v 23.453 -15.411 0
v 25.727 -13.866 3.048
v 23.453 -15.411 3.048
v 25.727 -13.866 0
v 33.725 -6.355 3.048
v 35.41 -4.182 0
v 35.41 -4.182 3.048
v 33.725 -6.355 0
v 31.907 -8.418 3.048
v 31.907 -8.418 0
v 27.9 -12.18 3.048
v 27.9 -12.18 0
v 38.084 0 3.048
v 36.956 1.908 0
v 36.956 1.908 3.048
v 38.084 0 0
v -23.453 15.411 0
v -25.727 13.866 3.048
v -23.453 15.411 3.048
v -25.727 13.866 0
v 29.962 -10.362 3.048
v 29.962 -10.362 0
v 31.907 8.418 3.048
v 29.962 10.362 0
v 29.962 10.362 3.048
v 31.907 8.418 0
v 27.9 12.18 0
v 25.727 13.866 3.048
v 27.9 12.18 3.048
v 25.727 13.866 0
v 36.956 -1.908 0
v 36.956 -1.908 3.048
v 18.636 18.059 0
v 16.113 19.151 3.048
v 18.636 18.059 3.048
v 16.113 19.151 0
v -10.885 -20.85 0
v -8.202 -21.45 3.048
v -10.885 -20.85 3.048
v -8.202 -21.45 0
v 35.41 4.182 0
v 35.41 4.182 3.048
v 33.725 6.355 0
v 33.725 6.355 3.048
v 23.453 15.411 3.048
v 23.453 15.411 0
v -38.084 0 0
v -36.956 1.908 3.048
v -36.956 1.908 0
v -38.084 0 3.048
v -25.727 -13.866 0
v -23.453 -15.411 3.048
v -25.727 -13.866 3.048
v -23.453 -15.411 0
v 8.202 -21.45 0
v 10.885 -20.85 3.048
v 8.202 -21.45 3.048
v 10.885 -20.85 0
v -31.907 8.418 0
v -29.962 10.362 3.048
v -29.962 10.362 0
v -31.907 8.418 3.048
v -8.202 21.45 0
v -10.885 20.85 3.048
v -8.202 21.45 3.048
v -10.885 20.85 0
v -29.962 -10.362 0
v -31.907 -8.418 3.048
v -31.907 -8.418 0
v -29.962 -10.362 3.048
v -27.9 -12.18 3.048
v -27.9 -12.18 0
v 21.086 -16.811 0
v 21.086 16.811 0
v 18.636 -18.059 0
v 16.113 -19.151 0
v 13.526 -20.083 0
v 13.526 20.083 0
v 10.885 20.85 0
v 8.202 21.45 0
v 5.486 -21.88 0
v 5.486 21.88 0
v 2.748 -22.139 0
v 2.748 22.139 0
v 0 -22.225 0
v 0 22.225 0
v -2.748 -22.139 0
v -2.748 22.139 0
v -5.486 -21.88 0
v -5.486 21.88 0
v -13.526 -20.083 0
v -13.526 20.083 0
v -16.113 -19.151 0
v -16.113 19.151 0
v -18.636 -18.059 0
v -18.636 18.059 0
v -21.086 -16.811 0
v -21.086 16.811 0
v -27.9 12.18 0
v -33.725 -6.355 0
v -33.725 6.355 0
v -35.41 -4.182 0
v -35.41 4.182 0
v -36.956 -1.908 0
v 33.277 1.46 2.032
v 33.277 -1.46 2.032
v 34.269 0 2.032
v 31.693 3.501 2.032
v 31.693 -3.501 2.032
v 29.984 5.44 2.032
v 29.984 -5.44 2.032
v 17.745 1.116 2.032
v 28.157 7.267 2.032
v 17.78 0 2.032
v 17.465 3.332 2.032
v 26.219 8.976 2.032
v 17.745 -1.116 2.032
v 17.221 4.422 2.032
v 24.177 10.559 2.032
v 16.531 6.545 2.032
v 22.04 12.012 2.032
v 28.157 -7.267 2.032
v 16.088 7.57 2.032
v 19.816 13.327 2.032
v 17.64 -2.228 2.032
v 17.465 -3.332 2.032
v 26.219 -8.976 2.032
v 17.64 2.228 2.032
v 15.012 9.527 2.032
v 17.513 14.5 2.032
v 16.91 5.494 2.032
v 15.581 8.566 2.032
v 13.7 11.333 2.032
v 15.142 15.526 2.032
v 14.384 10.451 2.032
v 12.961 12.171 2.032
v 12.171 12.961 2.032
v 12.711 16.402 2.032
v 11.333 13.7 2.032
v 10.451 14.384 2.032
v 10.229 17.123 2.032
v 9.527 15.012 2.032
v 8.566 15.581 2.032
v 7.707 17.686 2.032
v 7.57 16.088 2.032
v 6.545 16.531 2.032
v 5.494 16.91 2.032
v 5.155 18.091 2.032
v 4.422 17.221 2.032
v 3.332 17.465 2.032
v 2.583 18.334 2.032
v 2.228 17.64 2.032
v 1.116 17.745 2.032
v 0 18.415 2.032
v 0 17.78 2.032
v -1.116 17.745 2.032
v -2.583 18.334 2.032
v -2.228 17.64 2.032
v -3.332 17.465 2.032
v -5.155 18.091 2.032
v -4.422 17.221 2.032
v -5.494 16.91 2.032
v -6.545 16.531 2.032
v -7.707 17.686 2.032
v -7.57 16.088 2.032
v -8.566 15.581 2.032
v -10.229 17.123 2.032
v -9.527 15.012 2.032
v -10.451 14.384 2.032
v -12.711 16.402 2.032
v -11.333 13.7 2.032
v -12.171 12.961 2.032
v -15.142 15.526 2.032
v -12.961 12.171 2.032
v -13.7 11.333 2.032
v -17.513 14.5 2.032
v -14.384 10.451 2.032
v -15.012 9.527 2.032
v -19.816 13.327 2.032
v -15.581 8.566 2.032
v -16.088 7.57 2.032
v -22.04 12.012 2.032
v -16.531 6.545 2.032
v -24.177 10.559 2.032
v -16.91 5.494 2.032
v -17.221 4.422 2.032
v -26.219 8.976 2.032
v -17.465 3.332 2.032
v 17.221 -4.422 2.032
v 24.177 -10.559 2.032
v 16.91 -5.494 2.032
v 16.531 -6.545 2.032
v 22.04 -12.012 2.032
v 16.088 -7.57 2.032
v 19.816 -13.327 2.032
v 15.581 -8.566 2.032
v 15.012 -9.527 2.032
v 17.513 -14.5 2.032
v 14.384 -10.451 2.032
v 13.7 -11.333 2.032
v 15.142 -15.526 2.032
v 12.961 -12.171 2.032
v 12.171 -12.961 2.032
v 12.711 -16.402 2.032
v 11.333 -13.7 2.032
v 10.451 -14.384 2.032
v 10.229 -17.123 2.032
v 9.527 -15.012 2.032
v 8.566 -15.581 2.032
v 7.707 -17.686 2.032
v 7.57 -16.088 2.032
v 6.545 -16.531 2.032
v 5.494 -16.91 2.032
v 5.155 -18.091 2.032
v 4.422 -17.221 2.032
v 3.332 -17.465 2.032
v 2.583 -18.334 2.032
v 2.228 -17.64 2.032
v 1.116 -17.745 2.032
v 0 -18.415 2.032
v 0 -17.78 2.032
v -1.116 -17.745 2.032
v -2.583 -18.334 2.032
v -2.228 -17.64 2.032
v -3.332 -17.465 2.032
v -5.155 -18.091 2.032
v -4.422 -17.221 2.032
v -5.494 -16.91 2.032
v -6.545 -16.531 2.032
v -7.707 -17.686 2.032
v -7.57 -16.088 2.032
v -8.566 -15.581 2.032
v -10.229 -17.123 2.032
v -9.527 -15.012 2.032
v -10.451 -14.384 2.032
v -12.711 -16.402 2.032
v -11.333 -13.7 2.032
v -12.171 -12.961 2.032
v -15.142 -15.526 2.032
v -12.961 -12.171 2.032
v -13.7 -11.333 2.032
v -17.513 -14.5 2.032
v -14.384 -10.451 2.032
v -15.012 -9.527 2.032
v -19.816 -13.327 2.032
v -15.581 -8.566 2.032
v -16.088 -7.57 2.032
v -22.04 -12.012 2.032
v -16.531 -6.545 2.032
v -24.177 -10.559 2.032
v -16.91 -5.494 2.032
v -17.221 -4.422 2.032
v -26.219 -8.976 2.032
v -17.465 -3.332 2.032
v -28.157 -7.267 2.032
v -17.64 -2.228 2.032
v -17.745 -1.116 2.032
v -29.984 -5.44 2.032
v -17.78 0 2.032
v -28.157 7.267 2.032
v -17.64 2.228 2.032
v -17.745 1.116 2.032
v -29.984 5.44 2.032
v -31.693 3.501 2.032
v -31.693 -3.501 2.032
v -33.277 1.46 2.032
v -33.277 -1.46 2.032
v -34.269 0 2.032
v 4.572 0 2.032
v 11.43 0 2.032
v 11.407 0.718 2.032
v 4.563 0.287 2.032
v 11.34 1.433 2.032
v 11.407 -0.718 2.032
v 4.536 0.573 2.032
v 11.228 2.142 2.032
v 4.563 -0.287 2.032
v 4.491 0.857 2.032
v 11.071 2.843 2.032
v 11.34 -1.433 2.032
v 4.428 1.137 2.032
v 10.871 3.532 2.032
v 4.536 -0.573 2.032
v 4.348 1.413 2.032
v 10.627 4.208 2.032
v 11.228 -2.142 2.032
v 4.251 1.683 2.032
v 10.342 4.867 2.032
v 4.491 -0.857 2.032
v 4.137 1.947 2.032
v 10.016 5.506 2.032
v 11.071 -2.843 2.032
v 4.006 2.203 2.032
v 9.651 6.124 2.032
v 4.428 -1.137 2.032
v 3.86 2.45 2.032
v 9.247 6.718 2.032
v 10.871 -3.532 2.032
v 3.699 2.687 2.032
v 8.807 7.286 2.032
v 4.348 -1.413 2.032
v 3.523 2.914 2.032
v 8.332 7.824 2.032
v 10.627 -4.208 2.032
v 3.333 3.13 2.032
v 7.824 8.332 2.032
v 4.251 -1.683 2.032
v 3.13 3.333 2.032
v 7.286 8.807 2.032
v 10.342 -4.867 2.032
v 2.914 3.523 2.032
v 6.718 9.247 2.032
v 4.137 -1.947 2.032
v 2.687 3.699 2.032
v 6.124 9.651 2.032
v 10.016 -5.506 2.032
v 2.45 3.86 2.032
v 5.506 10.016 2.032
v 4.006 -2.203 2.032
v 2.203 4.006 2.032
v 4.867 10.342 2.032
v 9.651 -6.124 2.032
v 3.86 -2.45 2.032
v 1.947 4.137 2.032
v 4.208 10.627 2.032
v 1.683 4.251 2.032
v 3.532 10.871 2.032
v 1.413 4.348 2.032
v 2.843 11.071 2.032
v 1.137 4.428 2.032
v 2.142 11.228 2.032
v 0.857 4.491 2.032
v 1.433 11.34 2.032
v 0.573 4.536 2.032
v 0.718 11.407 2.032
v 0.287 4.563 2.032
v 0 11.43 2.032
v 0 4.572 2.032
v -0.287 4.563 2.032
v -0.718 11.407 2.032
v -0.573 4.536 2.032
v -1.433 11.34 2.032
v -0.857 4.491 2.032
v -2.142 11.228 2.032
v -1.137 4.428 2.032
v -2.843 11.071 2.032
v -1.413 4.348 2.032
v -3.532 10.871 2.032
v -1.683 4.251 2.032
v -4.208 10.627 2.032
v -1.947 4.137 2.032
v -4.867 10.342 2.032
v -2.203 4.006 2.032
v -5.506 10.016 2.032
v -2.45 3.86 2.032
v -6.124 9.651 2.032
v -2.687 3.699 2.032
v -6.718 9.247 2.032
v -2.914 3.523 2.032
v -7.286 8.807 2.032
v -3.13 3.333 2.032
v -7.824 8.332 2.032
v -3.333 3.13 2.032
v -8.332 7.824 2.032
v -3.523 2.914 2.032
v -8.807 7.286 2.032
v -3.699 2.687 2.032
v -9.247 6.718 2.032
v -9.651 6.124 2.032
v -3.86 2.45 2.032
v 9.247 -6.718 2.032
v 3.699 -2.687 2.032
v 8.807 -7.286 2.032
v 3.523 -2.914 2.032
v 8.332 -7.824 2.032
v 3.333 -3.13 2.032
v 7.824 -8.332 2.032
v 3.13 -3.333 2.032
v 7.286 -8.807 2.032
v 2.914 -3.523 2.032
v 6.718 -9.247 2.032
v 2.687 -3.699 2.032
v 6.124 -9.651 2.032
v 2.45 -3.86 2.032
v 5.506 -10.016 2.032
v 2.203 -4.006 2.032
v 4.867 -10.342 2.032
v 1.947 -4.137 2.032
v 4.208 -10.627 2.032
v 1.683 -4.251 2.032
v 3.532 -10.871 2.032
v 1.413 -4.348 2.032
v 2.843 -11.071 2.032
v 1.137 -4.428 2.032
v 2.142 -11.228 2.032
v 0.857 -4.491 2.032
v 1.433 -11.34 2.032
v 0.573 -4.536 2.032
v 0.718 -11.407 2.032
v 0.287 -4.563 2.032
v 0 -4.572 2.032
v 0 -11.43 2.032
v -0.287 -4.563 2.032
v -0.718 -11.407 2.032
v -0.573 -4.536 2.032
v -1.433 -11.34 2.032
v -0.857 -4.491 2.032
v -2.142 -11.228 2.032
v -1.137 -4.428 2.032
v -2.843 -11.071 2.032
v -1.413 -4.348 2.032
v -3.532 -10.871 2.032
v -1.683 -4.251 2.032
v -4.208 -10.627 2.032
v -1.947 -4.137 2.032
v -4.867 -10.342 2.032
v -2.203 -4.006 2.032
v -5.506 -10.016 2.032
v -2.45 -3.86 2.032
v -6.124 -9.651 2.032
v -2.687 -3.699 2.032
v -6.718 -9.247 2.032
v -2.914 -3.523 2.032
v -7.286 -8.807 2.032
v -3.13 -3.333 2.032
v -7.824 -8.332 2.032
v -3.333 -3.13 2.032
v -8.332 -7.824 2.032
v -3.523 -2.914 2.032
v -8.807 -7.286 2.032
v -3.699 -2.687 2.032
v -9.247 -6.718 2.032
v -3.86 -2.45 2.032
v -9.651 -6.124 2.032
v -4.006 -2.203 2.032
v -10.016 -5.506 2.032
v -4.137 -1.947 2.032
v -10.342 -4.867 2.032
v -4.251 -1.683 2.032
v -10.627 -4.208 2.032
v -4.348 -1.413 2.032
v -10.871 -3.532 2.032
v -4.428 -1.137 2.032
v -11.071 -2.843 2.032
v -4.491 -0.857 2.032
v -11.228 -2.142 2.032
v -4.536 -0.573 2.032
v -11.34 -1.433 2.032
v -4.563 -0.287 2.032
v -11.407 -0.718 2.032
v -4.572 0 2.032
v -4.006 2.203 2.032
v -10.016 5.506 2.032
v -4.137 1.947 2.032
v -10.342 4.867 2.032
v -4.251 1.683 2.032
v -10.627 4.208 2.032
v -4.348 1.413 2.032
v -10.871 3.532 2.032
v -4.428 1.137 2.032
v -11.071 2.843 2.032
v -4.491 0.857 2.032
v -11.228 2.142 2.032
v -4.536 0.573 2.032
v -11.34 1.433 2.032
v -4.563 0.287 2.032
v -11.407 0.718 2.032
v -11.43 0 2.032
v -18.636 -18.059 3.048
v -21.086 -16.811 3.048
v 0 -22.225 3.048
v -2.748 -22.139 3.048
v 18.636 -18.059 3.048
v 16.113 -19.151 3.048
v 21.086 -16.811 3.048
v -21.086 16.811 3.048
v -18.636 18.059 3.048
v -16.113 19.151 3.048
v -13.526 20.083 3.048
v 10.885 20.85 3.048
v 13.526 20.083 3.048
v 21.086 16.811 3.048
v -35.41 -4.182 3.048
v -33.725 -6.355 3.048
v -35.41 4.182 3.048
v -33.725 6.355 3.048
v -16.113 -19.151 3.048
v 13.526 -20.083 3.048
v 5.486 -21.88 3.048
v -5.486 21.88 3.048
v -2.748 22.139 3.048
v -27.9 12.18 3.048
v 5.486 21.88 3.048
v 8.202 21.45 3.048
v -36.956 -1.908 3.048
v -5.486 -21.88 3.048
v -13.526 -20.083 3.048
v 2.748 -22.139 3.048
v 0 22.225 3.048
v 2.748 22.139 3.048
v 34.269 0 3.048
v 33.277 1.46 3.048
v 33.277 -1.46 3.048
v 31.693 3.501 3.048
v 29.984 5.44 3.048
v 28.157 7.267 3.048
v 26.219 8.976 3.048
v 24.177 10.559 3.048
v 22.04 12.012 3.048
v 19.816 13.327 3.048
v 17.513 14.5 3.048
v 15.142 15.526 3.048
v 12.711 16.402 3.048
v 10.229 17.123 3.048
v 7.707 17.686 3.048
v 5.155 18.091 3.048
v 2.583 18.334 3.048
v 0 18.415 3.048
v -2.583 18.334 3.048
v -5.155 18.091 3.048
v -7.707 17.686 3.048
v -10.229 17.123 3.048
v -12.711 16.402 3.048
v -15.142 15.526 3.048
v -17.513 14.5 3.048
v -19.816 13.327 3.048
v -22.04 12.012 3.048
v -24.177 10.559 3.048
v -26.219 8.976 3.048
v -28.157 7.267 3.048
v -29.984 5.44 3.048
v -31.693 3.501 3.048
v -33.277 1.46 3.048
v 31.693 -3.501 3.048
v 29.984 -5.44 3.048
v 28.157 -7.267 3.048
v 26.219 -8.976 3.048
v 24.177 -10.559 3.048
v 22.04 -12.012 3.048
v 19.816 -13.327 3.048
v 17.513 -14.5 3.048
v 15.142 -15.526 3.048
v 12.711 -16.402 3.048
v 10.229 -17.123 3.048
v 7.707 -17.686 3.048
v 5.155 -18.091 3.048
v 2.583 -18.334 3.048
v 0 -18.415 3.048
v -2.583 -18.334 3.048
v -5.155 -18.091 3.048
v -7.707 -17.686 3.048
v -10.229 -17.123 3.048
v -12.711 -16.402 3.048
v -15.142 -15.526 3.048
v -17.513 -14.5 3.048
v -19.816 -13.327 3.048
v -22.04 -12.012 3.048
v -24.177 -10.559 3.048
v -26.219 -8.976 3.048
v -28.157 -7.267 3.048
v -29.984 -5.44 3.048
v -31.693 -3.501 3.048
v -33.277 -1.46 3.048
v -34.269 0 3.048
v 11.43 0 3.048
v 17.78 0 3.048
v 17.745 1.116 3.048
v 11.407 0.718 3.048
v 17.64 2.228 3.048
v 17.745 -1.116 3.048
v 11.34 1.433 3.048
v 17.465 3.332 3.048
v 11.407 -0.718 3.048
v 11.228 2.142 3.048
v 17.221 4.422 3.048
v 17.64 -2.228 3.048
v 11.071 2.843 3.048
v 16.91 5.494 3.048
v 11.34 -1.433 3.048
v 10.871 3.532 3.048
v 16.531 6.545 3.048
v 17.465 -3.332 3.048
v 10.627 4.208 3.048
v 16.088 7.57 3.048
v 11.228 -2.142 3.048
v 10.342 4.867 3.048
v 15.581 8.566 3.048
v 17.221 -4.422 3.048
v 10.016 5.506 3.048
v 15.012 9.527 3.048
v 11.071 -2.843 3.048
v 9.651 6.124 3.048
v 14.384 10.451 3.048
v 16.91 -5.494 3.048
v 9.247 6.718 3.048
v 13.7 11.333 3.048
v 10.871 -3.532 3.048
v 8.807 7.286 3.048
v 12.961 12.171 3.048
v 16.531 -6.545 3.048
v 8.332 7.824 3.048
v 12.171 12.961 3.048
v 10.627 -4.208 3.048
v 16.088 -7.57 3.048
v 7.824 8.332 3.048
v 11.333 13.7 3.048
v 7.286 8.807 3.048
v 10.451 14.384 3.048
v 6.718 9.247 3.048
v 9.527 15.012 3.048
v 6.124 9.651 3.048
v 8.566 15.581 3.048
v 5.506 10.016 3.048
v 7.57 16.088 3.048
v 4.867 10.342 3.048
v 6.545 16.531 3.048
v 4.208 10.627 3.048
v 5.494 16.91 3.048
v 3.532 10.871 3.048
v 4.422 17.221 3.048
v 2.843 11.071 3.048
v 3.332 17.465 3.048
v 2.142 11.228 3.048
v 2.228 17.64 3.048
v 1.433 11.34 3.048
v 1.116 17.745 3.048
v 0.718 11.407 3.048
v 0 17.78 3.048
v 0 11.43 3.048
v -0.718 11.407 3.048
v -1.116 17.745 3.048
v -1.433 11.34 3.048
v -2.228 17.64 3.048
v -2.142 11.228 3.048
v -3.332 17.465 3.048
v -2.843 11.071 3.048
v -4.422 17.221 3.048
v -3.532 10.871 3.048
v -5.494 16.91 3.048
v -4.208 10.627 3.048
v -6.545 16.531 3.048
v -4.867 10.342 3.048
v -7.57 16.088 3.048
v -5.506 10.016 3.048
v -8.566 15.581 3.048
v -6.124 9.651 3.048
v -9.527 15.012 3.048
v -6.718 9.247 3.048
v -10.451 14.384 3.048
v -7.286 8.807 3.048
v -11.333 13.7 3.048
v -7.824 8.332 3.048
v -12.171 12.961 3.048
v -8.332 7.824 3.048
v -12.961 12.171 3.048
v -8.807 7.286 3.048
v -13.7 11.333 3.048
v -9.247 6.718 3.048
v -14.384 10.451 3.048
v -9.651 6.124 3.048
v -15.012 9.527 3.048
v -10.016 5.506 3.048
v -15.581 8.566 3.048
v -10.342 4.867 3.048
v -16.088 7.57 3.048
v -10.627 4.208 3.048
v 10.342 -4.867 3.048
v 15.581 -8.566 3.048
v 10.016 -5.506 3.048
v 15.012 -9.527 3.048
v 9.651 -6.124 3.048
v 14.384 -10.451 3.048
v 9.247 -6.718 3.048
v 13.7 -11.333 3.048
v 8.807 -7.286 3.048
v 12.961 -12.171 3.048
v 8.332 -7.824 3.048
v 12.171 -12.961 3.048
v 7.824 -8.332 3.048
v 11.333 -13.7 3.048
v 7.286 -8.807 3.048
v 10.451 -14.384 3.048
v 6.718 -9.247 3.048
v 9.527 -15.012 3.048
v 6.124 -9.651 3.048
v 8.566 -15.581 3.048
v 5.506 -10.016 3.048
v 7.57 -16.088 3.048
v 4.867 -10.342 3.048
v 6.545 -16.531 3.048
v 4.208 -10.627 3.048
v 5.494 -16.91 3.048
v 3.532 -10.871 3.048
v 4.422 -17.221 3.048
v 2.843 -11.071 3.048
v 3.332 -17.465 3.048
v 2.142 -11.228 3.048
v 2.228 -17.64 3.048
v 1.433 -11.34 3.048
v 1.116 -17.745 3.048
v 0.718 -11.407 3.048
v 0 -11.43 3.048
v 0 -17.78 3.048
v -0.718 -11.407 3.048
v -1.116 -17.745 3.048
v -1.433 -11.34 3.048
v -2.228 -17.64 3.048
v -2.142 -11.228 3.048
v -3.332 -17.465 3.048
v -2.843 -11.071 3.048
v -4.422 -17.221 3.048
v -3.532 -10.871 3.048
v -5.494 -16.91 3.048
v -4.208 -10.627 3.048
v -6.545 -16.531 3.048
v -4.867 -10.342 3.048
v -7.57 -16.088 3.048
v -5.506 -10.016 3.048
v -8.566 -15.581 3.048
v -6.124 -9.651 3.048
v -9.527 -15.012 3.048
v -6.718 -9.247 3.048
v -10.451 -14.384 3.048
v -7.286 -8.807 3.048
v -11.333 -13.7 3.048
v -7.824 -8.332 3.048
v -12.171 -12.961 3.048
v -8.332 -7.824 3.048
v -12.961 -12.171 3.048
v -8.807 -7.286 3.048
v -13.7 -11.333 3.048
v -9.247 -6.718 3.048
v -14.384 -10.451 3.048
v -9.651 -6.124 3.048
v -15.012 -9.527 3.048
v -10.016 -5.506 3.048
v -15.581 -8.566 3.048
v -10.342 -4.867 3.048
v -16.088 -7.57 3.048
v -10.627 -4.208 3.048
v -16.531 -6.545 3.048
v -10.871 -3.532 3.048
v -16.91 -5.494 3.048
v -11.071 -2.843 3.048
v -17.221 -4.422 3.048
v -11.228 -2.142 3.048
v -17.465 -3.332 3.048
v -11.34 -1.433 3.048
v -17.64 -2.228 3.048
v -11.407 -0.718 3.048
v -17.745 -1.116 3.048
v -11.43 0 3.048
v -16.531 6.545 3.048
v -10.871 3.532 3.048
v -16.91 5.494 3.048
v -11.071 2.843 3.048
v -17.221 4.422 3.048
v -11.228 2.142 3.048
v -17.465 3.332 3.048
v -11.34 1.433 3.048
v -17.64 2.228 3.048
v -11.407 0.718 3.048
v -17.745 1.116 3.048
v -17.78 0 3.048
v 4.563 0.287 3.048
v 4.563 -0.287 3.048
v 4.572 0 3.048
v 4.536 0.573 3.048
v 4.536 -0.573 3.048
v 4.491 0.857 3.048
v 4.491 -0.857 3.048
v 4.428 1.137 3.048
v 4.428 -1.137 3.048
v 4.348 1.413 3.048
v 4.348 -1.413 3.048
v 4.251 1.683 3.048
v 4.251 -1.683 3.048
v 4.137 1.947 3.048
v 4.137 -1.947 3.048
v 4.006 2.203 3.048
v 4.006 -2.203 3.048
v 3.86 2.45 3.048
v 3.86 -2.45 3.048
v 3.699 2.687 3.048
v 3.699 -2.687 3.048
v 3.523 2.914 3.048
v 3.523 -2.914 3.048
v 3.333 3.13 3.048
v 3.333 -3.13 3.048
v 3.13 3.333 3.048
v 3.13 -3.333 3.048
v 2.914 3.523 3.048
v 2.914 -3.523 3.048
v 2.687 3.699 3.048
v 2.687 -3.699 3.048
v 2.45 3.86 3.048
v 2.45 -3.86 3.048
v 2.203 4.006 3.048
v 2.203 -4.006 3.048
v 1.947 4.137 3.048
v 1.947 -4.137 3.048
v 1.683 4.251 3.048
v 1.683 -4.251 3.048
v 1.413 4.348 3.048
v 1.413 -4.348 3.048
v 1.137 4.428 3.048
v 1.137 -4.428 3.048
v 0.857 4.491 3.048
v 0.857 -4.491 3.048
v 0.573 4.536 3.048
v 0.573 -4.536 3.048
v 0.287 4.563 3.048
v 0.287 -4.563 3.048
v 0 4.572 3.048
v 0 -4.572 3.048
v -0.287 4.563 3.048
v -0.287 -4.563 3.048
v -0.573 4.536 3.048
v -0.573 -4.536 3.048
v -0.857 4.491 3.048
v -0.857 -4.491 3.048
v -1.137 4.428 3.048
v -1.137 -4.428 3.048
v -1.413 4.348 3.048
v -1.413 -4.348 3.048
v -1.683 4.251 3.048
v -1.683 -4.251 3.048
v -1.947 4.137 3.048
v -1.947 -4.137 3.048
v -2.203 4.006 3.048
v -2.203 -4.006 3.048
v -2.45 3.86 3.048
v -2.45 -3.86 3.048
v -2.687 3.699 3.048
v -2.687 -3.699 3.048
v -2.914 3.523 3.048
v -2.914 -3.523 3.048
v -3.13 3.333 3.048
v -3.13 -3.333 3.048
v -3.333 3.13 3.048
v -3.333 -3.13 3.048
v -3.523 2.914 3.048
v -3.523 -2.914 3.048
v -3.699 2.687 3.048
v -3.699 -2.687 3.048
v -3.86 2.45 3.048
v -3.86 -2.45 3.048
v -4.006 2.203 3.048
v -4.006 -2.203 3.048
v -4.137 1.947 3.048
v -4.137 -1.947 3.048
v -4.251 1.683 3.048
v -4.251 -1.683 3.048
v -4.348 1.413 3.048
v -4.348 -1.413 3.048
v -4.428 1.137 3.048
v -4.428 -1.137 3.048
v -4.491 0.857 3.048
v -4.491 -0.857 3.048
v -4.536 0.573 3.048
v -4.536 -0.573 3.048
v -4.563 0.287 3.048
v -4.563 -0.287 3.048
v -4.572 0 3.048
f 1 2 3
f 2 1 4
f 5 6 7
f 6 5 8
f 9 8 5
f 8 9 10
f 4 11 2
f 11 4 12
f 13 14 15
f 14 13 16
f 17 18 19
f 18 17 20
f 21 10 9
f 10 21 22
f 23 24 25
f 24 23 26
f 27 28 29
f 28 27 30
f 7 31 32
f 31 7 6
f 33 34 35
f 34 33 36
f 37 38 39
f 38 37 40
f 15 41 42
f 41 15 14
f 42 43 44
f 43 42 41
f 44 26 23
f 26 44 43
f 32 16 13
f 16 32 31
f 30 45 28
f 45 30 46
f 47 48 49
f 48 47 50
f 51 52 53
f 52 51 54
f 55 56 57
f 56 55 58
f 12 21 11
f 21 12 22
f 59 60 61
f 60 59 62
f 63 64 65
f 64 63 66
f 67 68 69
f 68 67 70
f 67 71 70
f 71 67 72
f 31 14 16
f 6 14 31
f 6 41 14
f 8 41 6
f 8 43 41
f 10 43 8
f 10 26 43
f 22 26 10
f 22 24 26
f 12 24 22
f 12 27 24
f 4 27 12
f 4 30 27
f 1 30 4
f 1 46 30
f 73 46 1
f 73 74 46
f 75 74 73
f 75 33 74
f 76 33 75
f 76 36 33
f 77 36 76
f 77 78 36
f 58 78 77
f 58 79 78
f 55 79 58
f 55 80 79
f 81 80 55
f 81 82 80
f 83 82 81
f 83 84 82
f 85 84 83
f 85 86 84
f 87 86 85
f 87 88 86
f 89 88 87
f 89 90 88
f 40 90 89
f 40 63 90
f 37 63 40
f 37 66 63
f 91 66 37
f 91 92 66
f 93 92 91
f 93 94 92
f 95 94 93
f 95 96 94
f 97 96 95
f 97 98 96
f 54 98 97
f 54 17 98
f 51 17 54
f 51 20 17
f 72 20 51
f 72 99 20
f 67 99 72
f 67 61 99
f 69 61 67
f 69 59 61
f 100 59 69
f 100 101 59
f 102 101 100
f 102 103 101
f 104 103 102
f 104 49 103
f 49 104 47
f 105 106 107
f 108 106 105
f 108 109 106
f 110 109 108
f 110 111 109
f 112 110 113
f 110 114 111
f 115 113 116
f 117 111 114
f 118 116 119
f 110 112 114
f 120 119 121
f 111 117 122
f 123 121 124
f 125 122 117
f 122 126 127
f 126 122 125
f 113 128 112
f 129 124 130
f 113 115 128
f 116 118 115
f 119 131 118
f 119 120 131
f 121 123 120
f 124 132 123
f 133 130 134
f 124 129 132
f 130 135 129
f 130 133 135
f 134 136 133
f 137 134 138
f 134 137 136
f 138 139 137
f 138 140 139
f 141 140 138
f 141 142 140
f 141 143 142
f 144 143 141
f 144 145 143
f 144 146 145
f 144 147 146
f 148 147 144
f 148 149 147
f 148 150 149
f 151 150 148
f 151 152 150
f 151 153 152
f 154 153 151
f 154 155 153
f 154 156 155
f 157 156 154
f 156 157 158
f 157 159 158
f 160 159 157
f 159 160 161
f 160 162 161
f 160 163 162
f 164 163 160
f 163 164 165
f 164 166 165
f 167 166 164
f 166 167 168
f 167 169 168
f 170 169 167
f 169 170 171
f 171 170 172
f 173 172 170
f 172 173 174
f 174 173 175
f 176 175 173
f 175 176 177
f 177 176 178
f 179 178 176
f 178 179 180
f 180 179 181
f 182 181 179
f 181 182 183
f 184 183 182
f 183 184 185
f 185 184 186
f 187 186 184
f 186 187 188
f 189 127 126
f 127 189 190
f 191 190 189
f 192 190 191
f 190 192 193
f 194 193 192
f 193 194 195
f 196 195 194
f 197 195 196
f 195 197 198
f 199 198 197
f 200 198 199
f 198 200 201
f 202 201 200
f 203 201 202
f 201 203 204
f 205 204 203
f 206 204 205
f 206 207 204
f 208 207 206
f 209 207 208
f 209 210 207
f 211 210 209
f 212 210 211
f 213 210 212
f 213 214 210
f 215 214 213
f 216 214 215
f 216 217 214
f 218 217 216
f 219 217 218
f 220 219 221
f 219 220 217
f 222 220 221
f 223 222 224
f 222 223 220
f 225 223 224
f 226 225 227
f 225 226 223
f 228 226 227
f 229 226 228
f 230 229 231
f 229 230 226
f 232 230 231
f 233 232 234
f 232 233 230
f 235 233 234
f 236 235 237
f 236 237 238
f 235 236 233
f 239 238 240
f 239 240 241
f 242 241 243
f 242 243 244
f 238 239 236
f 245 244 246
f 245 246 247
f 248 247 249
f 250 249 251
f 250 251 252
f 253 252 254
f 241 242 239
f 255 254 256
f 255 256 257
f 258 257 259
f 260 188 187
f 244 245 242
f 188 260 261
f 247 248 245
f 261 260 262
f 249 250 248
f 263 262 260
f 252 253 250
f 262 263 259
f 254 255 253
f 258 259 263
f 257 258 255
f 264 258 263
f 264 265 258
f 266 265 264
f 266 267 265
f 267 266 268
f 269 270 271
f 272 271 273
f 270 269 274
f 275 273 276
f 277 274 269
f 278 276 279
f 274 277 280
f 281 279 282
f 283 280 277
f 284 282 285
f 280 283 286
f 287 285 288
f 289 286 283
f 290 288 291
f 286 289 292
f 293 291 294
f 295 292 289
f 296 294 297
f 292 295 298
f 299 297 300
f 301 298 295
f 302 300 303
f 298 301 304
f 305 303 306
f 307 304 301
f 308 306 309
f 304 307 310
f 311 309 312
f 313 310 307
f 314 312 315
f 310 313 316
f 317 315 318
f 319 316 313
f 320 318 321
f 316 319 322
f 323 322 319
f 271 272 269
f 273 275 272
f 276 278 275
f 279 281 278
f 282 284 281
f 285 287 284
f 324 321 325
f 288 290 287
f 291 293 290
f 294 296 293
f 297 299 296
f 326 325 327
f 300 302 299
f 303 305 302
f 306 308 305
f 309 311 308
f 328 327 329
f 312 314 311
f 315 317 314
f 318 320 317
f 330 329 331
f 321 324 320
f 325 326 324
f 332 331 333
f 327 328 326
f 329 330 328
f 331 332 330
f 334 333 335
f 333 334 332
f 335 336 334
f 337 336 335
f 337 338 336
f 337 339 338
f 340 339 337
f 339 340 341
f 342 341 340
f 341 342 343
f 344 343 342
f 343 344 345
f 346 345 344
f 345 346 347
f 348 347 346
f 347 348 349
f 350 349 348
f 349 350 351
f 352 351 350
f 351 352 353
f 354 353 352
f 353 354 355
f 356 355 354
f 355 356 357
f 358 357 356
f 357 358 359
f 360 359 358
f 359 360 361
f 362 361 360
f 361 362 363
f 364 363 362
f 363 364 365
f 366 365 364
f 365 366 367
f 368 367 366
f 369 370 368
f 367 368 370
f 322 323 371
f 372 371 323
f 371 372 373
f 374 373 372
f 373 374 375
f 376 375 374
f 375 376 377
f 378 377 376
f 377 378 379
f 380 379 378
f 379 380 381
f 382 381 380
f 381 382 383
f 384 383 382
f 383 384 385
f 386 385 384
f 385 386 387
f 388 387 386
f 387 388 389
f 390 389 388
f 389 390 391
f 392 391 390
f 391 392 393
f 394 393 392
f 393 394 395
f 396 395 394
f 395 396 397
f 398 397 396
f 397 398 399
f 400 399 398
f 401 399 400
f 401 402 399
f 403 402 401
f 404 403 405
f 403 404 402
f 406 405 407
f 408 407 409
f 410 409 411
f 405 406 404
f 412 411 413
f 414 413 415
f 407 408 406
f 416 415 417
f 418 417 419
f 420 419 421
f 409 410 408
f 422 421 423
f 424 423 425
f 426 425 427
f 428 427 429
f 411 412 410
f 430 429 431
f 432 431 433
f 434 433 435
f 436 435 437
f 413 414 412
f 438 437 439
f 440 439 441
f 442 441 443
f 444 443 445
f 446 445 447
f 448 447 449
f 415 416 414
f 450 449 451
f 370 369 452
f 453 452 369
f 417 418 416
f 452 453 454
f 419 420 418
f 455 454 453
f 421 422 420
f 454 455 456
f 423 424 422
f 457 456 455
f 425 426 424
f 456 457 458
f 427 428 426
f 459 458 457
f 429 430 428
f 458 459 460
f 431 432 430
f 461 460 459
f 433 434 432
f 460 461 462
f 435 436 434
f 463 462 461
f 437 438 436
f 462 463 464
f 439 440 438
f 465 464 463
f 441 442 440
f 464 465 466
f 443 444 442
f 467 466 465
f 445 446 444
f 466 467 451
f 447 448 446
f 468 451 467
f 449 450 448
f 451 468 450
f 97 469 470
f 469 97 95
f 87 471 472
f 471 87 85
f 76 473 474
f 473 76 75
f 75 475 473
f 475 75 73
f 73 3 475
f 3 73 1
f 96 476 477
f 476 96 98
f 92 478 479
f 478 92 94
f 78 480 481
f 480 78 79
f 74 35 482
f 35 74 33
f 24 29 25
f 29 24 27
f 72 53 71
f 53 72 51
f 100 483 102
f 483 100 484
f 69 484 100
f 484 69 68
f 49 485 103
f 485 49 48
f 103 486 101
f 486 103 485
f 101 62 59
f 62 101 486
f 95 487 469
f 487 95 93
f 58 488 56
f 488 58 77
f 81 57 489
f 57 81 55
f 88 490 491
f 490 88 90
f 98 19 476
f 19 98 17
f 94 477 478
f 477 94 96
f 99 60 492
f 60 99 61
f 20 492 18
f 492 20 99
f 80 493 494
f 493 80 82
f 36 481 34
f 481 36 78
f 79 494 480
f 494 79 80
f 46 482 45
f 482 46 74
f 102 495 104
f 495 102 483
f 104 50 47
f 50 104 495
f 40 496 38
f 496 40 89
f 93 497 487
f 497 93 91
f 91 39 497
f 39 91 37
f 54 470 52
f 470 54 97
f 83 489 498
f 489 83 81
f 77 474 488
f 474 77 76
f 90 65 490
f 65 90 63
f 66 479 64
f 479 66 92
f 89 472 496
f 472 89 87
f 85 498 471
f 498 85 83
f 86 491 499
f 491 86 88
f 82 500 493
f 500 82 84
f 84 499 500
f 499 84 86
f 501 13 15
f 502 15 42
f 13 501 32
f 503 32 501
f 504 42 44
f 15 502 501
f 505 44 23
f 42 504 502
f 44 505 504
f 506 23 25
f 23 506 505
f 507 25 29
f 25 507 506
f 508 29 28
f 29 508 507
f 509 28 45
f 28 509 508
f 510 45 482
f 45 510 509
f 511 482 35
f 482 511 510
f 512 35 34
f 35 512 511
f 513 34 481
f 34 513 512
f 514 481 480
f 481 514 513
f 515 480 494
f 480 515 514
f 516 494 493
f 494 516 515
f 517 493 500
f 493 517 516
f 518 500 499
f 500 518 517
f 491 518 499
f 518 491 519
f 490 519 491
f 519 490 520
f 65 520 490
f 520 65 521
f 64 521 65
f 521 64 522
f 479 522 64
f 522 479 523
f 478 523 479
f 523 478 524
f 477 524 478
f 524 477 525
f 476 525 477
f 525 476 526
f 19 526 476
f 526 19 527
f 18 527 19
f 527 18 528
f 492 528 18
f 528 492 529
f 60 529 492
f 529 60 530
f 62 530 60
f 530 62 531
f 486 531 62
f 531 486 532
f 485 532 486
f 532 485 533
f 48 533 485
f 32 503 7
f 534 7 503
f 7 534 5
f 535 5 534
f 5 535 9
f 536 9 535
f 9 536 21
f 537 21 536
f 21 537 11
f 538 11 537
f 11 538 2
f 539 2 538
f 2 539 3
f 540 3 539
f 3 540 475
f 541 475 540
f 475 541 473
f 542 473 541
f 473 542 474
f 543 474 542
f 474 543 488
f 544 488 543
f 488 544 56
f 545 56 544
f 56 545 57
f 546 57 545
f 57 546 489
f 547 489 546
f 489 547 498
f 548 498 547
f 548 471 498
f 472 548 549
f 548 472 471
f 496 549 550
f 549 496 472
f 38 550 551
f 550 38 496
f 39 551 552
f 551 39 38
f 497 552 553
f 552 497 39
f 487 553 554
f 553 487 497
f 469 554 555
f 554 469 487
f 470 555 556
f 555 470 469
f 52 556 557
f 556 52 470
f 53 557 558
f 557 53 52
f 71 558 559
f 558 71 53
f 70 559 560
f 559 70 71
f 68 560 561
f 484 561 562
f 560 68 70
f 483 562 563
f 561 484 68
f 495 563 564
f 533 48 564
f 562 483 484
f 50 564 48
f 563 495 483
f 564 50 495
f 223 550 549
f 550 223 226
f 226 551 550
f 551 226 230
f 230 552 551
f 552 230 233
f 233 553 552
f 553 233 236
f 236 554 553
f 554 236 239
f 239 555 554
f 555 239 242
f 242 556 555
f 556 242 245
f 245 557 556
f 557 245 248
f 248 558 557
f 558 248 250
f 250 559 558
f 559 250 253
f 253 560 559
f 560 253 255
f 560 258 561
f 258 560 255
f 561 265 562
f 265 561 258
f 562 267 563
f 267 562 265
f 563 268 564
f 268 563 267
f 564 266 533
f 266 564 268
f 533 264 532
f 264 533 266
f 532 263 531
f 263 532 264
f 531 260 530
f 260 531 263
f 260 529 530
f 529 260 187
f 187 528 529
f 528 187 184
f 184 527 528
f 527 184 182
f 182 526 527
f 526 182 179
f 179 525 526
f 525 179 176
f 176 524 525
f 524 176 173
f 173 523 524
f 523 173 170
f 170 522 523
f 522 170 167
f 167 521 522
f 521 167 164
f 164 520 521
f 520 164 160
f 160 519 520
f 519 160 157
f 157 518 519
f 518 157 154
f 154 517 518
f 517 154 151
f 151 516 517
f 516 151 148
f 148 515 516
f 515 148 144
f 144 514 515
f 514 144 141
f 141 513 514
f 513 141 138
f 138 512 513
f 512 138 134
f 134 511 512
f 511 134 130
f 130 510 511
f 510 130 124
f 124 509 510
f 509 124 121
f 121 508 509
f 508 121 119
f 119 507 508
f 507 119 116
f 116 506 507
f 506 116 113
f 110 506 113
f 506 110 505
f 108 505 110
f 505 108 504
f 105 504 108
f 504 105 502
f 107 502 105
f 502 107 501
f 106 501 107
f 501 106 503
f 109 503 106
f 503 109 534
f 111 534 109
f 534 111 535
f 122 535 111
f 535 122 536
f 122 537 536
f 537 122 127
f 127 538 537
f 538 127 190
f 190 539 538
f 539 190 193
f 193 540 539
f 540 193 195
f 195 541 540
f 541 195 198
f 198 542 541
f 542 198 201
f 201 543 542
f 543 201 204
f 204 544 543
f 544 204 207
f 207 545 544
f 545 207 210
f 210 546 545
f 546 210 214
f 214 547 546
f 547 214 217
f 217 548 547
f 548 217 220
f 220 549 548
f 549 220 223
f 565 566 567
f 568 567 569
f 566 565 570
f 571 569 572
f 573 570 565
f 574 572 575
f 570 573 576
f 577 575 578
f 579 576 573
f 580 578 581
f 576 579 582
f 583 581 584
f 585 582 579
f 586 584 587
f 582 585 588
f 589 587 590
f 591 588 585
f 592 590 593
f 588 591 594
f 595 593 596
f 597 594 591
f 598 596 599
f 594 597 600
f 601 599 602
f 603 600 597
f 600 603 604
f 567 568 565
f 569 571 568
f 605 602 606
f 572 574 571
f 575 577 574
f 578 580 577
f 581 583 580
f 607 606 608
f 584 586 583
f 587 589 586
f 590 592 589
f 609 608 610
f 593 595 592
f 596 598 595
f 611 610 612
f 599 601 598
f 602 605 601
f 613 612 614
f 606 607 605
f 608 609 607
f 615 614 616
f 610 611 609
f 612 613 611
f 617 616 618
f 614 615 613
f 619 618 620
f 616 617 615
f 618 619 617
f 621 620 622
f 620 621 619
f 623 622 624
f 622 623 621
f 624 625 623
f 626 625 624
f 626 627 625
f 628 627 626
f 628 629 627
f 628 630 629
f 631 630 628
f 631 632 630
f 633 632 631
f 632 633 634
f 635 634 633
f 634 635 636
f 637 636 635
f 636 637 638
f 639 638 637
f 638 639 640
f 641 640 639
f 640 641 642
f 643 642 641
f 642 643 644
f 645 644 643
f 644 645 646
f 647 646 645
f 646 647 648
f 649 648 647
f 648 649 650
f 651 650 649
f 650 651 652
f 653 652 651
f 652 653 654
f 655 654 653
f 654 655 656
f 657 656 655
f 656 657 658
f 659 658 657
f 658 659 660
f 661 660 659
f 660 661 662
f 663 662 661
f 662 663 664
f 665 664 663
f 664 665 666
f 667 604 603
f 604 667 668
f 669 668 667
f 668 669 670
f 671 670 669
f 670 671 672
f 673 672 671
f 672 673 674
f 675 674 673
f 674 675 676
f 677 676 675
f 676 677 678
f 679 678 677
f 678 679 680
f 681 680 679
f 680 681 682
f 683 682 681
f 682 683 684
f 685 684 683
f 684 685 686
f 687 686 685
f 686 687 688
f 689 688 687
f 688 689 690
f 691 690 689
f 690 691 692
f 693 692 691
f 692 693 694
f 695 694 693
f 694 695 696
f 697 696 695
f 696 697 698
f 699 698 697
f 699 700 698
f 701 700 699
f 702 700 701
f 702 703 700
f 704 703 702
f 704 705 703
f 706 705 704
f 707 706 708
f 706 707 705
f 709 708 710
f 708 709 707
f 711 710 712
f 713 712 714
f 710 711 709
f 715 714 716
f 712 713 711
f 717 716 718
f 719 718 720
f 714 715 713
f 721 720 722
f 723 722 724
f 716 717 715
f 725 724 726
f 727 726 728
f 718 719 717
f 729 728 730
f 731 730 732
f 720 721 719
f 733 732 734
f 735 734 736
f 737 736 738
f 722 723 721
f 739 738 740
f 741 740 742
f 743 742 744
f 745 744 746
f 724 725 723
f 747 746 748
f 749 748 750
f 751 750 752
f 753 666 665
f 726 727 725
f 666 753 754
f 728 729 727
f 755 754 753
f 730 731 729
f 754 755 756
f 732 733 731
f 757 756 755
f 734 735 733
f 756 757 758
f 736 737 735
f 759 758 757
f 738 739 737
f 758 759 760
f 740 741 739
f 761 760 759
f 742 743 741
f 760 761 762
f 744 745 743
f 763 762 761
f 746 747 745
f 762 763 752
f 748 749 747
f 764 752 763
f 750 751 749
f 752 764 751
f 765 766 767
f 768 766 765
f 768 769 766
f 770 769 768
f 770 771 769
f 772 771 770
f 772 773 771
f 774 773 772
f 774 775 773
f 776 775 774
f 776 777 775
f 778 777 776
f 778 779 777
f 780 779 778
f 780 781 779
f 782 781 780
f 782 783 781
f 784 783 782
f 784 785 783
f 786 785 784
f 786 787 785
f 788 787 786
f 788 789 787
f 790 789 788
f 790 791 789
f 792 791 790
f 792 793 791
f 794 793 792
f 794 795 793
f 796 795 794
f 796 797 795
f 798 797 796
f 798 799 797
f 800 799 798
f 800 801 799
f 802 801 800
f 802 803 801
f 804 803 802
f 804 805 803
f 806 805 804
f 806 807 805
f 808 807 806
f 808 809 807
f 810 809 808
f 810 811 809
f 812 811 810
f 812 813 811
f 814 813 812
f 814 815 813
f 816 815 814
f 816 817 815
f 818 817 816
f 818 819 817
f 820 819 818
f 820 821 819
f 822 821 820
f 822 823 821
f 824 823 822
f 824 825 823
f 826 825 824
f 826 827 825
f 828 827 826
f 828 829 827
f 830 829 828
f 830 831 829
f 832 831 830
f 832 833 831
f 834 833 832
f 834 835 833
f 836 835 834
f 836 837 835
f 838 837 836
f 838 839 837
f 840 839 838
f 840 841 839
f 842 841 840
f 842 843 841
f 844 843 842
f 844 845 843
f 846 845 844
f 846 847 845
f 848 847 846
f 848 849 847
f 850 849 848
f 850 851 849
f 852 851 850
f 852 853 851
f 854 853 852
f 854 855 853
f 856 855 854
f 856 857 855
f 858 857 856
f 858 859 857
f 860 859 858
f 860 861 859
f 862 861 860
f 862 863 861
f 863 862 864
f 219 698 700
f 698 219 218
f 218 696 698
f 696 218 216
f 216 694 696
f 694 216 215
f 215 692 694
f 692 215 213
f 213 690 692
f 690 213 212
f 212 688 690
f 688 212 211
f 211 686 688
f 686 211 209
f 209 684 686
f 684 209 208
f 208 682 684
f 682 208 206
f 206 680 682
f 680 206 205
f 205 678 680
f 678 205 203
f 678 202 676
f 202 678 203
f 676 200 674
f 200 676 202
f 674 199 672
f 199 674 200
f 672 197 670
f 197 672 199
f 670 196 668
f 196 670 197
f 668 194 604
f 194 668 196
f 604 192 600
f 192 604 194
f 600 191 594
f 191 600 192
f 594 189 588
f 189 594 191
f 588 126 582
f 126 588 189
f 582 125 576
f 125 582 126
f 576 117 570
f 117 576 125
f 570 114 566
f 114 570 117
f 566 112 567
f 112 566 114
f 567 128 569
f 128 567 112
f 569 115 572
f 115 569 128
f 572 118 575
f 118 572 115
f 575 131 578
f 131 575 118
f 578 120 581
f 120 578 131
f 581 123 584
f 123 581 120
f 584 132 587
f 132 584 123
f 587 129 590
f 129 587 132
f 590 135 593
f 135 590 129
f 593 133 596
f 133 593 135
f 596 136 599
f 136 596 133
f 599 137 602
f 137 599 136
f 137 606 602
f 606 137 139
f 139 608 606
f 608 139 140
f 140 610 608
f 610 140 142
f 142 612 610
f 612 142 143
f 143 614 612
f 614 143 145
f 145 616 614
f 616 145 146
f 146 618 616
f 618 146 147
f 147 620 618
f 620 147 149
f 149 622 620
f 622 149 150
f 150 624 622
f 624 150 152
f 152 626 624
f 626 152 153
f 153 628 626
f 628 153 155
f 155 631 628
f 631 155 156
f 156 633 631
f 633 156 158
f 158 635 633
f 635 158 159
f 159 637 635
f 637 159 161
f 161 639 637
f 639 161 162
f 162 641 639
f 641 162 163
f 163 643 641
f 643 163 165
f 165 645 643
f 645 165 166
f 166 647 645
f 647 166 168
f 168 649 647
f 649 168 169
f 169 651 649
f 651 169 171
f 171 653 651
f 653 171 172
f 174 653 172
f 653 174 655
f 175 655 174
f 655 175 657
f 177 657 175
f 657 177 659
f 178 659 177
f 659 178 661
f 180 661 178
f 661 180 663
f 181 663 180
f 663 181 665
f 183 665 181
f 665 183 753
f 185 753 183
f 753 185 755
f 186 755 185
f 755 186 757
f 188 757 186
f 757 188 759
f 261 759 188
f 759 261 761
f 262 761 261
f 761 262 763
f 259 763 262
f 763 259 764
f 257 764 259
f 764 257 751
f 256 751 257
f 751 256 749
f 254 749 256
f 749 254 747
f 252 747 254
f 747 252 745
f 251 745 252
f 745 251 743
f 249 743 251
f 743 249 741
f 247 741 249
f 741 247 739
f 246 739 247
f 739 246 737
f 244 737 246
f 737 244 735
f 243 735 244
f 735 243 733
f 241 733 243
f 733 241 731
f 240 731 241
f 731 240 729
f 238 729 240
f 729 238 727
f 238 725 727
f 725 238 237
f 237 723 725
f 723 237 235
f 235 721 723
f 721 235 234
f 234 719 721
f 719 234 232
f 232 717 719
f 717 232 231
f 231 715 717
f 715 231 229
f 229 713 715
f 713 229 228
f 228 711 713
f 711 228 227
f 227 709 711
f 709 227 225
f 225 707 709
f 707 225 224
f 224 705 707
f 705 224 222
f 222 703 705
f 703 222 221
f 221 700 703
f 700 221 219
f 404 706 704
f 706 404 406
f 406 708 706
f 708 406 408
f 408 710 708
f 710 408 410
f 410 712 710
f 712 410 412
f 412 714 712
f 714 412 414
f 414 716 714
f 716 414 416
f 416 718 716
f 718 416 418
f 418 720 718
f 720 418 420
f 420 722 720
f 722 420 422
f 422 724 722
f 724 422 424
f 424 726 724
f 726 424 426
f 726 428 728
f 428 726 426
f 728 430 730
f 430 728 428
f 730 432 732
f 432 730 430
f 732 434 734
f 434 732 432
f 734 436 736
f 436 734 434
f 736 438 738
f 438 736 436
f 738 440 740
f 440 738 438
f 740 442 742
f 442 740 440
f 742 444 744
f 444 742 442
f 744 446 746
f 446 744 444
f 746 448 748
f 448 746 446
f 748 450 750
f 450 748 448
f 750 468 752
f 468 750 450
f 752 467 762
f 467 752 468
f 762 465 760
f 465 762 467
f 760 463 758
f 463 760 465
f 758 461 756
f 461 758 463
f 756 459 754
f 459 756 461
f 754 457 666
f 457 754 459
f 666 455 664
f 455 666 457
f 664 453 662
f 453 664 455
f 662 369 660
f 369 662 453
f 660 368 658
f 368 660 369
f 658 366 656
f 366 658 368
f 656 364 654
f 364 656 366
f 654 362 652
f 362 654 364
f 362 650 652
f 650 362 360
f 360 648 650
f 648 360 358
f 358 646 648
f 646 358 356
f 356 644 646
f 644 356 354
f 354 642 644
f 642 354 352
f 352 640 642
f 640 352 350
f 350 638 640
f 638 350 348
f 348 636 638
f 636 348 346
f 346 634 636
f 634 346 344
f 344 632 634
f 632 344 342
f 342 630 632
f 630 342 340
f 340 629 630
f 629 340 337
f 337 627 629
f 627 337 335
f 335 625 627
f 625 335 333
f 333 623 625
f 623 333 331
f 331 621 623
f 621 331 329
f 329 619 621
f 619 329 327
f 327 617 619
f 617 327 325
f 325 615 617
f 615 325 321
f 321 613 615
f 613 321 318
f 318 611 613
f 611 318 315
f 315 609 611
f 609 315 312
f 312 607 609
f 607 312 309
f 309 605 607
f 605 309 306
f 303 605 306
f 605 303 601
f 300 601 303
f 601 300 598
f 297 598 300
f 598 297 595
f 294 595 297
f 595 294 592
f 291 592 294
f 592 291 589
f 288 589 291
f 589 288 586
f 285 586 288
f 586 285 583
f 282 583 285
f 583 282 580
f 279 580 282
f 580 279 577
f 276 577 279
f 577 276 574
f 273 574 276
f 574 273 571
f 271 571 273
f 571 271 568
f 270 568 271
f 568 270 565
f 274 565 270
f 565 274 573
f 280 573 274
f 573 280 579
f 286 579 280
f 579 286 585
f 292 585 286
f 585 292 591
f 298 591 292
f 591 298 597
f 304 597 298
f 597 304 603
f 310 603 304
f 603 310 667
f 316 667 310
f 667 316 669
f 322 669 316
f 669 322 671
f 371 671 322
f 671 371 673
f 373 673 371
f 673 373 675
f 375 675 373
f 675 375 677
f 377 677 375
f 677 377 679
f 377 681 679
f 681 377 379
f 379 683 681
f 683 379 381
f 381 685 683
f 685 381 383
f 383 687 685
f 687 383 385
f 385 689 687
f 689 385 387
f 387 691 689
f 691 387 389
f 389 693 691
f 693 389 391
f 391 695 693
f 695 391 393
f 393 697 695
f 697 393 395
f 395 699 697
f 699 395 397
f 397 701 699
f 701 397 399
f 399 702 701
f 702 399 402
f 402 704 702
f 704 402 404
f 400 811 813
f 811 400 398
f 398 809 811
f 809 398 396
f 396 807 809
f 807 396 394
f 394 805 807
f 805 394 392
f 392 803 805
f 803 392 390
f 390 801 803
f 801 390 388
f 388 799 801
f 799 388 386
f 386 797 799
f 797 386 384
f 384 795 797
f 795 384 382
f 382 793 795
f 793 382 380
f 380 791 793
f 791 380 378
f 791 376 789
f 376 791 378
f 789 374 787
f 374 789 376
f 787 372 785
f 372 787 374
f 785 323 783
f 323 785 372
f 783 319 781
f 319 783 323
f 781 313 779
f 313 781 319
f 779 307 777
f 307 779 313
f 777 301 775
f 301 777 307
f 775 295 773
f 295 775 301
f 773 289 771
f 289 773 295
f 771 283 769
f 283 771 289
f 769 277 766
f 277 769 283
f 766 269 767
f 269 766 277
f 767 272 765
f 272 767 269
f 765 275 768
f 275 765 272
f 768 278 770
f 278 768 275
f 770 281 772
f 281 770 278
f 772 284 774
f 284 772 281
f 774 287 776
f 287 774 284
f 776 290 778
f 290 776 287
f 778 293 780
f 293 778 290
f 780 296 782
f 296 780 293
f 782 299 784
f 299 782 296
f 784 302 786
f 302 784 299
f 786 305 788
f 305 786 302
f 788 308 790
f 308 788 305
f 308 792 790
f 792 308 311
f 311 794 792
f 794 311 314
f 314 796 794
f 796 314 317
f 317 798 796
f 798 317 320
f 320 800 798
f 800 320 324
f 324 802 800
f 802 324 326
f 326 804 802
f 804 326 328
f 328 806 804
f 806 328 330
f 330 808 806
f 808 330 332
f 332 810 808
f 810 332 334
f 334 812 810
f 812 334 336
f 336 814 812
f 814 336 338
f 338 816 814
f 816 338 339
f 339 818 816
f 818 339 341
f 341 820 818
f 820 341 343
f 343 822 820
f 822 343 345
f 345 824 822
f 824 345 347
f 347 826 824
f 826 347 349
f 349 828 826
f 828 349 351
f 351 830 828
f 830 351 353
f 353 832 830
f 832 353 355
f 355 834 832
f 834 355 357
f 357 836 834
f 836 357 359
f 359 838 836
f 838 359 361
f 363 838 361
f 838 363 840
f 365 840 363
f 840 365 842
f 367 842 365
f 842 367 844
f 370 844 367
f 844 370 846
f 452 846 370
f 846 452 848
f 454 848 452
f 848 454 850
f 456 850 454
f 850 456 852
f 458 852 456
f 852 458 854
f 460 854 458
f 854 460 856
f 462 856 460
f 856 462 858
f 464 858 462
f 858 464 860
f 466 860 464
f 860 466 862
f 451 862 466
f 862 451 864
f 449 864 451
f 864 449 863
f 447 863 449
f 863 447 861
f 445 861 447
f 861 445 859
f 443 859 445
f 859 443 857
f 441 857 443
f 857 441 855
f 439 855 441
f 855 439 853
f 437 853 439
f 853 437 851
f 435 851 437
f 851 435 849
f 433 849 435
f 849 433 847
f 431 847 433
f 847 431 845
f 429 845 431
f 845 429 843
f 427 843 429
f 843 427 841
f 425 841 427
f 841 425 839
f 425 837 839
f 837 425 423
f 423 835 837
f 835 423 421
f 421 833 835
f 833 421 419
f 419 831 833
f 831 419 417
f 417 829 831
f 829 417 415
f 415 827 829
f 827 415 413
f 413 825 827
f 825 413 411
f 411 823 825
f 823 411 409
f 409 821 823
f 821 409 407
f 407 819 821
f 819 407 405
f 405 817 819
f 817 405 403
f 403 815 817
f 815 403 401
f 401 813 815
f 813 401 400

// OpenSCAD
// All-Seeing Eye Symbol
// Version: 1.0
// Description: A minimalistic "lidded" eye symbol with sharp corners (Vesica Piscis geometry).

/* [Global Dimensions] */
INCH = 25.4;

eye_width = 3.0 * INCH;
eye_height = 1.75 * INCH;

base_thickness = 0.08 * INCH;  // The back plate
lid_thickness = 0.12 * INCH;   // The rim/lids
pupil_thickness = 0.12 * INCH; // The pupil

pupil_diameter = 0.9 * INCH;
iris_diameter = 1.4 * INCH;    // Optional slight detail

/* [Rendering] */
$fn = 100;

module almond_shape(w, h) {
    // To get the sharp corners (Vesica Piscis style), we intersect two large offset circles.
    // We adjust the offset and radius to approximate the bounding box w x h.
    
    // Mathematical approximation for the "Lens" shape:
    // We want the intersection to be width 'w' and height 'h'.
    // Radius of curvature 'R' = (w^2 + h^2) / (4h)
    // Vertical Offset of centers 'y0' = R - h/2
    
    R = (pow(w, 2) + pow(h, 2)) / (4 * h);
    y_offset = R - h/2;

    intersection() {
        translate([0, -y_offset, 0]) circle(r=R);
        translate([0, y_offset, 0]) circle(r=R);
    }
}

module main() {
    
    // 1. Base Plate (Sclera)
    color("white") 
    linear_extrude(base_thickness) {
        almond_shape(eye_width, eye_height);
    }

    // 2. Eyelids (Rim)
    // We create a rim by subtracting a slightly smaller almond from the main one.
    rim_width = 0.15 * INCH;
    
    color("gray")
    translate([0, 0, base_thickness])
    linear_extrude(lid_thickness - base_thickness) {
        difference() {
            almond_shape(eye_width, eye_height);
            almond_shape(eye_width - rim_width*2, eye_height - rim_width*2);
        }
    }

    // 3. Pupil & Iris
    // Independent central cylinder
    color("black")
    translate([0, 0, base_thickness])
    linear_extrude(pupil_thickness - base_thickness) {
        // Outer Iris Ring (optional, adds the "stare" effect)
        difference() {
            circle(d=iris_diameter);
            circle(d=pupil_diameter);
        }
        
        // Inner Pupil
        circle(d=pupil_diameter * 0.4); 
    }
    
    /* 
       Alternative "Heavy Lid" cut?
       Sometimes "lidded" means the top of the iris is covered.
       Uncomment below to subtract the top lid from the pupil if desired.
    */
    /*
    translate([0, eye_height/2, 0])
        cube([eye_width, eye_height*0.2, 10], center=true);
    */
}

main();
